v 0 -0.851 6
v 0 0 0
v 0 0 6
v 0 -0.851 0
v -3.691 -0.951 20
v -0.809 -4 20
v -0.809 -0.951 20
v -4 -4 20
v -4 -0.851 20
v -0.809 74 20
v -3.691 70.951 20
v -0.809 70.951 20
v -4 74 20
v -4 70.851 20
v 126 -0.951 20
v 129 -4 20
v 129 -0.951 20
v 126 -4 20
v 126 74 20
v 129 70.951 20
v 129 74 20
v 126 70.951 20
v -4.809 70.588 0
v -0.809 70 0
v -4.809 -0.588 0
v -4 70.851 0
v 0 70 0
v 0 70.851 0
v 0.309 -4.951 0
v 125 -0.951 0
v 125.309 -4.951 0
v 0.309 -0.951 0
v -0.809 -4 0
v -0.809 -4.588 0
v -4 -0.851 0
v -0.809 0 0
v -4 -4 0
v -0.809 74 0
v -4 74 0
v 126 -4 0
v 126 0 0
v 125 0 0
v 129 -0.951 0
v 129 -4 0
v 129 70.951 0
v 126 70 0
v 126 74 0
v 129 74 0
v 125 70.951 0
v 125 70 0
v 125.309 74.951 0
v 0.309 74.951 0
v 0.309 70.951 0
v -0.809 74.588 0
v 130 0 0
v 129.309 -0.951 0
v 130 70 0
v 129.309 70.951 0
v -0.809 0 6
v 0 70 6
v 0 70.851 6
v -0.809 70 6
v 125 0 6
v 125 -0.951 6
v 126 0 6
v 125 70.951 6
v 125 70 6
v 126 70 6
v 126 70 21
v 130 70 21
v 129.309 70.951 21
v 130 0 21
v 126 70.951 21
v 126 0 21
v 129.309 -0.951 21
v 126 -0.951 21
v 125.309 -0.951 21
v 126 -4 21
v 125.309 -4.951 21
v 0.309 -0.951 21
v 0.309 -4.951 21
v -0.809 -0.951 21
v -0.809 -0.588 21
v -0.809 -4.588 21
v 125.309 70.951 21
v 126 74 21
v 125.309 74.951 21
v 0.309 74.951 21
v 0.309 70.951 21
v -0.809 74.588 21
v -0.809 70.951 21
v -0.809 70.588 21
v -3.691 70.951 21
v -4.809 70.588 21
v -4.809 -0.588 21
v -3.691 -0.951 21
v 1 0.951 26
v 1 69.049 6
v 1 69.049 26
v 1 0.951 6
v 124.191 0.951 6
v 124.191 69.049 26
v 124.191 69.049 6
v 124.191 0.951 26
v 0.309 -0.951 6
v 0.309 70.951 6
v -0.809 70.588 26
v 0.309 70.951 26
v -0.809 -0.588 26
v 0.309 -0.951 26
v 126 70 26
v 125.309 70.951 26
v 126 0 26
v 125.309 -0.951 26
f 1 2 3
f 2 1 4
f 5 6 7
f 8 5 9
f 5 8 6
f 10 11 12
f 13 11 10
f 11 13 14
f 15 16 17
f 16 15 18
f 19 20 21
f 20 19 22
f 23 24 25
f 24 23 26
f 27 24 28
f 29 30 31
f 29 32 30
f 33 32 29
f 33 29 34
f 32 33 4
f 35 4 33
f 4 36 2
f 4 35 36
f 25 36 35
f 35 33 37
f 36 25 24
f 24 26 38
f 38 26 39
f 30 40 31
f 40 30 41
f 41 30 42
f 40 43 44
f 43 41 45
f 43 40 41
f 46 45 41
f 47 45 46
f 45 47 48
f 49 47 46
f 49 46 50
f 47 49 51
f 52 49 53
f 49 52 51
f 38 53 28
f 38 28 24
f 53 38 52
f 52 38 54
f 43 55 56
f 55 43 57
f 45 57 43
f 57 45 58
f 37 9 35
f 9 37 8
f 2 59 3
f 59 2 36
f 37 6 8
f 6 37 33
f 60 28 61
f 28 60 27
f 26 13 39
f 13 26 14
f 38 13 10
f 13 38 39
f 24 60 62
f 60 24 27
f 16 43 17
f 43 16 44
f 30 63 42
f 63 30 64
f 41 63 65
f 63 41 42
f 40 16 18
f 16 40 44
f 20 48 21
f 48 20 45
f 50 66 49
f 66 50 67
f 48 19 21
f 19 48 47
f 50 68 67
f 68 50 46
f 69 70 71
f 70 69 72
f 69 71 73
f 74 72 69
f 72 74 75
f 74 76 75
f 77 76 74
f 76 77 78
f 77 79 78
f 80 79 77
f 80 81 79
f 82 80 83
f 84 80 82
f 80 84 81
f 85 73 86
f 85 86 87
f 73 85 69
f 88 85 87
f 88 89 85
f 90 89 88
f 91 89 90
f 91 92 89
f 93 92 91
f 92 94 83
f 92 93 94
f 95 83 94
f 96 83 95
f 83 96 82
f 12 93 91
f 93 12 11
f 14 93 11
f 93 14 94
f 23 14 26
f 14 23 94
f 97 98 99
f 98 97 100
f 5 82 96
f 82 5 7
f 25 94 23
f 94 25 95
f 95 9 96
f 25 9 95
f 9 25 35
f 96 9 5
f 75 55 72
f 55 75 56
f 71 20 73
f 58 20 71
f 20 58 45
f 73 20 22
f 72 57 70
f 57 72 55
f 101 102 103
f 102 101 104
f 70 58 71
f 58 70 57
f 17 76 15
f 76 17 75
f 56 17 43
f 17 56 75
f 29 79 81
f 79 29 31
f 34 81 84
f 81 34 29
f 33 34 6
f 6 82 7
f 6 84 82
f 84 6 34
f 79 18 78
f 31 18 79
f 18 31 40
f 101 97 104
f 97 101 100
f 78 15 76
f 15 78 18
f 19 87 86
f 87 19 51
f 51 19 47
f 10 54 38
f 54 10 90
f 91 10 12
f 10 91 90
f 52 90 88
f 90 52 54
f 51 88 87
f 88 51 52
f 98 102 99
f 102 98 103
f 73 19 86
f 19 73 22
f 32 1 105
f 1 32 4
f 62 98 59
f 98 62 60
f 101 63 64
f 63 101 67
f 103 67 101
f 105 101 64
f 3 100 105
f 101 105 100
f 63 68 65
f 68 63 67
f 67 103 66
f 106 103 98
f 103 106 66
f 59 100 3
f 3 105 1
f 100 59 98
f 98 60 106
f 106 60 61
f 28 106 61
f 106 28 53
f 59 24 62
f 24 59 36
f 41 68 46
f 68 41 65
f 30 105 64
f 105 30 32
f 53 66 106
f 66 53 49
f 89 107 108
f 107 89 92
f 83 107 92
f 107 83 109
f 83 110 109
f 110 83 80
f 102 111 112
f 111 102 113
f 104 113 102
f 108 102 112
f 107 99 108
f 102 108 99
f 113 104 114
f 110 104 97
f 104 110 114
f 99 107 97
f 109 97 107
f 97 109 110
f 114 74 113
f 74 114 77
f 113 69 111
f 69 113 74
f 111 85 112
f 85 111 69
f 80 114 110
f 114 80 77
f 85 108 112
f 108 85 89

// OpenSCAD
// file: can.scad
//Can dimensions
radius = 66.14/2;
top_radius = 53.67/2;
top_rise = 14.57;
bottom_radius = 50/2;
bottom_rise = 7.4;
height = 122.54;

module can(height, radius, top_rise, top_radius, bottom_rise, bottom_radius){
    //Getting measurements correct
    adjusted_height = height - top_rise - bottom_rise;
    adjusted_top_height = adjusted_height + bottom_rise;
    
    //Making the can
    //Top
    translate([0, 0, adjusted_top_height]){
        cylinder(bottom_rise, radius, top_radius);
    }
    //Main body
    translate([0, 0, bottom_rise]){
	    cylinder(adjusted_height, radius, radius);
    }
    //Bottom of can
    cylinder(bottom_rise, bottom_radius, radius);
}
can(height, radius, top_rise, top_radius, bottom_rise, bottom_radius);
// main file
use <can.scad>
use <dispenser_hopper.scad>
//General settings
dispenser_length = 70;
wall_thickness = 4;
lip_wall_thickness = 2;
tall_wall_x = 125;
tall_wall_y = dispenser_length;
tall_wall_z = 20;
lip_x = tall_wall_x;
lip_y = tall_wall_y;
lip_z = 5;
lip_z_offset = tall_wall_z;
opening_z = 40;

//Can settings
can_radius = 66.2/2;
can_top_radius = 53.67/2;
can_top_rise = 14.57;
can_bottom_radius = 50/2;
can_bottom_rise = 7.4;
can_height = 123.53;

dispenser_width = can_height + 5;

hopper(can_height, dispenser_width, dispenser_length, wall_thickness, lip_wall_thickness, tall_wall_x, tall_wall_y, tall_wall_z, lip_x, lip_y, lip_z_offset, lip_z);
/*
translate([5, 35, 10]){
    rotate([0, 90, 0]){
        can(can_height, can_radius, can_top_rise, can_top_radius, can_bottom_rise, can_bottom_radius);
    }
}*/
